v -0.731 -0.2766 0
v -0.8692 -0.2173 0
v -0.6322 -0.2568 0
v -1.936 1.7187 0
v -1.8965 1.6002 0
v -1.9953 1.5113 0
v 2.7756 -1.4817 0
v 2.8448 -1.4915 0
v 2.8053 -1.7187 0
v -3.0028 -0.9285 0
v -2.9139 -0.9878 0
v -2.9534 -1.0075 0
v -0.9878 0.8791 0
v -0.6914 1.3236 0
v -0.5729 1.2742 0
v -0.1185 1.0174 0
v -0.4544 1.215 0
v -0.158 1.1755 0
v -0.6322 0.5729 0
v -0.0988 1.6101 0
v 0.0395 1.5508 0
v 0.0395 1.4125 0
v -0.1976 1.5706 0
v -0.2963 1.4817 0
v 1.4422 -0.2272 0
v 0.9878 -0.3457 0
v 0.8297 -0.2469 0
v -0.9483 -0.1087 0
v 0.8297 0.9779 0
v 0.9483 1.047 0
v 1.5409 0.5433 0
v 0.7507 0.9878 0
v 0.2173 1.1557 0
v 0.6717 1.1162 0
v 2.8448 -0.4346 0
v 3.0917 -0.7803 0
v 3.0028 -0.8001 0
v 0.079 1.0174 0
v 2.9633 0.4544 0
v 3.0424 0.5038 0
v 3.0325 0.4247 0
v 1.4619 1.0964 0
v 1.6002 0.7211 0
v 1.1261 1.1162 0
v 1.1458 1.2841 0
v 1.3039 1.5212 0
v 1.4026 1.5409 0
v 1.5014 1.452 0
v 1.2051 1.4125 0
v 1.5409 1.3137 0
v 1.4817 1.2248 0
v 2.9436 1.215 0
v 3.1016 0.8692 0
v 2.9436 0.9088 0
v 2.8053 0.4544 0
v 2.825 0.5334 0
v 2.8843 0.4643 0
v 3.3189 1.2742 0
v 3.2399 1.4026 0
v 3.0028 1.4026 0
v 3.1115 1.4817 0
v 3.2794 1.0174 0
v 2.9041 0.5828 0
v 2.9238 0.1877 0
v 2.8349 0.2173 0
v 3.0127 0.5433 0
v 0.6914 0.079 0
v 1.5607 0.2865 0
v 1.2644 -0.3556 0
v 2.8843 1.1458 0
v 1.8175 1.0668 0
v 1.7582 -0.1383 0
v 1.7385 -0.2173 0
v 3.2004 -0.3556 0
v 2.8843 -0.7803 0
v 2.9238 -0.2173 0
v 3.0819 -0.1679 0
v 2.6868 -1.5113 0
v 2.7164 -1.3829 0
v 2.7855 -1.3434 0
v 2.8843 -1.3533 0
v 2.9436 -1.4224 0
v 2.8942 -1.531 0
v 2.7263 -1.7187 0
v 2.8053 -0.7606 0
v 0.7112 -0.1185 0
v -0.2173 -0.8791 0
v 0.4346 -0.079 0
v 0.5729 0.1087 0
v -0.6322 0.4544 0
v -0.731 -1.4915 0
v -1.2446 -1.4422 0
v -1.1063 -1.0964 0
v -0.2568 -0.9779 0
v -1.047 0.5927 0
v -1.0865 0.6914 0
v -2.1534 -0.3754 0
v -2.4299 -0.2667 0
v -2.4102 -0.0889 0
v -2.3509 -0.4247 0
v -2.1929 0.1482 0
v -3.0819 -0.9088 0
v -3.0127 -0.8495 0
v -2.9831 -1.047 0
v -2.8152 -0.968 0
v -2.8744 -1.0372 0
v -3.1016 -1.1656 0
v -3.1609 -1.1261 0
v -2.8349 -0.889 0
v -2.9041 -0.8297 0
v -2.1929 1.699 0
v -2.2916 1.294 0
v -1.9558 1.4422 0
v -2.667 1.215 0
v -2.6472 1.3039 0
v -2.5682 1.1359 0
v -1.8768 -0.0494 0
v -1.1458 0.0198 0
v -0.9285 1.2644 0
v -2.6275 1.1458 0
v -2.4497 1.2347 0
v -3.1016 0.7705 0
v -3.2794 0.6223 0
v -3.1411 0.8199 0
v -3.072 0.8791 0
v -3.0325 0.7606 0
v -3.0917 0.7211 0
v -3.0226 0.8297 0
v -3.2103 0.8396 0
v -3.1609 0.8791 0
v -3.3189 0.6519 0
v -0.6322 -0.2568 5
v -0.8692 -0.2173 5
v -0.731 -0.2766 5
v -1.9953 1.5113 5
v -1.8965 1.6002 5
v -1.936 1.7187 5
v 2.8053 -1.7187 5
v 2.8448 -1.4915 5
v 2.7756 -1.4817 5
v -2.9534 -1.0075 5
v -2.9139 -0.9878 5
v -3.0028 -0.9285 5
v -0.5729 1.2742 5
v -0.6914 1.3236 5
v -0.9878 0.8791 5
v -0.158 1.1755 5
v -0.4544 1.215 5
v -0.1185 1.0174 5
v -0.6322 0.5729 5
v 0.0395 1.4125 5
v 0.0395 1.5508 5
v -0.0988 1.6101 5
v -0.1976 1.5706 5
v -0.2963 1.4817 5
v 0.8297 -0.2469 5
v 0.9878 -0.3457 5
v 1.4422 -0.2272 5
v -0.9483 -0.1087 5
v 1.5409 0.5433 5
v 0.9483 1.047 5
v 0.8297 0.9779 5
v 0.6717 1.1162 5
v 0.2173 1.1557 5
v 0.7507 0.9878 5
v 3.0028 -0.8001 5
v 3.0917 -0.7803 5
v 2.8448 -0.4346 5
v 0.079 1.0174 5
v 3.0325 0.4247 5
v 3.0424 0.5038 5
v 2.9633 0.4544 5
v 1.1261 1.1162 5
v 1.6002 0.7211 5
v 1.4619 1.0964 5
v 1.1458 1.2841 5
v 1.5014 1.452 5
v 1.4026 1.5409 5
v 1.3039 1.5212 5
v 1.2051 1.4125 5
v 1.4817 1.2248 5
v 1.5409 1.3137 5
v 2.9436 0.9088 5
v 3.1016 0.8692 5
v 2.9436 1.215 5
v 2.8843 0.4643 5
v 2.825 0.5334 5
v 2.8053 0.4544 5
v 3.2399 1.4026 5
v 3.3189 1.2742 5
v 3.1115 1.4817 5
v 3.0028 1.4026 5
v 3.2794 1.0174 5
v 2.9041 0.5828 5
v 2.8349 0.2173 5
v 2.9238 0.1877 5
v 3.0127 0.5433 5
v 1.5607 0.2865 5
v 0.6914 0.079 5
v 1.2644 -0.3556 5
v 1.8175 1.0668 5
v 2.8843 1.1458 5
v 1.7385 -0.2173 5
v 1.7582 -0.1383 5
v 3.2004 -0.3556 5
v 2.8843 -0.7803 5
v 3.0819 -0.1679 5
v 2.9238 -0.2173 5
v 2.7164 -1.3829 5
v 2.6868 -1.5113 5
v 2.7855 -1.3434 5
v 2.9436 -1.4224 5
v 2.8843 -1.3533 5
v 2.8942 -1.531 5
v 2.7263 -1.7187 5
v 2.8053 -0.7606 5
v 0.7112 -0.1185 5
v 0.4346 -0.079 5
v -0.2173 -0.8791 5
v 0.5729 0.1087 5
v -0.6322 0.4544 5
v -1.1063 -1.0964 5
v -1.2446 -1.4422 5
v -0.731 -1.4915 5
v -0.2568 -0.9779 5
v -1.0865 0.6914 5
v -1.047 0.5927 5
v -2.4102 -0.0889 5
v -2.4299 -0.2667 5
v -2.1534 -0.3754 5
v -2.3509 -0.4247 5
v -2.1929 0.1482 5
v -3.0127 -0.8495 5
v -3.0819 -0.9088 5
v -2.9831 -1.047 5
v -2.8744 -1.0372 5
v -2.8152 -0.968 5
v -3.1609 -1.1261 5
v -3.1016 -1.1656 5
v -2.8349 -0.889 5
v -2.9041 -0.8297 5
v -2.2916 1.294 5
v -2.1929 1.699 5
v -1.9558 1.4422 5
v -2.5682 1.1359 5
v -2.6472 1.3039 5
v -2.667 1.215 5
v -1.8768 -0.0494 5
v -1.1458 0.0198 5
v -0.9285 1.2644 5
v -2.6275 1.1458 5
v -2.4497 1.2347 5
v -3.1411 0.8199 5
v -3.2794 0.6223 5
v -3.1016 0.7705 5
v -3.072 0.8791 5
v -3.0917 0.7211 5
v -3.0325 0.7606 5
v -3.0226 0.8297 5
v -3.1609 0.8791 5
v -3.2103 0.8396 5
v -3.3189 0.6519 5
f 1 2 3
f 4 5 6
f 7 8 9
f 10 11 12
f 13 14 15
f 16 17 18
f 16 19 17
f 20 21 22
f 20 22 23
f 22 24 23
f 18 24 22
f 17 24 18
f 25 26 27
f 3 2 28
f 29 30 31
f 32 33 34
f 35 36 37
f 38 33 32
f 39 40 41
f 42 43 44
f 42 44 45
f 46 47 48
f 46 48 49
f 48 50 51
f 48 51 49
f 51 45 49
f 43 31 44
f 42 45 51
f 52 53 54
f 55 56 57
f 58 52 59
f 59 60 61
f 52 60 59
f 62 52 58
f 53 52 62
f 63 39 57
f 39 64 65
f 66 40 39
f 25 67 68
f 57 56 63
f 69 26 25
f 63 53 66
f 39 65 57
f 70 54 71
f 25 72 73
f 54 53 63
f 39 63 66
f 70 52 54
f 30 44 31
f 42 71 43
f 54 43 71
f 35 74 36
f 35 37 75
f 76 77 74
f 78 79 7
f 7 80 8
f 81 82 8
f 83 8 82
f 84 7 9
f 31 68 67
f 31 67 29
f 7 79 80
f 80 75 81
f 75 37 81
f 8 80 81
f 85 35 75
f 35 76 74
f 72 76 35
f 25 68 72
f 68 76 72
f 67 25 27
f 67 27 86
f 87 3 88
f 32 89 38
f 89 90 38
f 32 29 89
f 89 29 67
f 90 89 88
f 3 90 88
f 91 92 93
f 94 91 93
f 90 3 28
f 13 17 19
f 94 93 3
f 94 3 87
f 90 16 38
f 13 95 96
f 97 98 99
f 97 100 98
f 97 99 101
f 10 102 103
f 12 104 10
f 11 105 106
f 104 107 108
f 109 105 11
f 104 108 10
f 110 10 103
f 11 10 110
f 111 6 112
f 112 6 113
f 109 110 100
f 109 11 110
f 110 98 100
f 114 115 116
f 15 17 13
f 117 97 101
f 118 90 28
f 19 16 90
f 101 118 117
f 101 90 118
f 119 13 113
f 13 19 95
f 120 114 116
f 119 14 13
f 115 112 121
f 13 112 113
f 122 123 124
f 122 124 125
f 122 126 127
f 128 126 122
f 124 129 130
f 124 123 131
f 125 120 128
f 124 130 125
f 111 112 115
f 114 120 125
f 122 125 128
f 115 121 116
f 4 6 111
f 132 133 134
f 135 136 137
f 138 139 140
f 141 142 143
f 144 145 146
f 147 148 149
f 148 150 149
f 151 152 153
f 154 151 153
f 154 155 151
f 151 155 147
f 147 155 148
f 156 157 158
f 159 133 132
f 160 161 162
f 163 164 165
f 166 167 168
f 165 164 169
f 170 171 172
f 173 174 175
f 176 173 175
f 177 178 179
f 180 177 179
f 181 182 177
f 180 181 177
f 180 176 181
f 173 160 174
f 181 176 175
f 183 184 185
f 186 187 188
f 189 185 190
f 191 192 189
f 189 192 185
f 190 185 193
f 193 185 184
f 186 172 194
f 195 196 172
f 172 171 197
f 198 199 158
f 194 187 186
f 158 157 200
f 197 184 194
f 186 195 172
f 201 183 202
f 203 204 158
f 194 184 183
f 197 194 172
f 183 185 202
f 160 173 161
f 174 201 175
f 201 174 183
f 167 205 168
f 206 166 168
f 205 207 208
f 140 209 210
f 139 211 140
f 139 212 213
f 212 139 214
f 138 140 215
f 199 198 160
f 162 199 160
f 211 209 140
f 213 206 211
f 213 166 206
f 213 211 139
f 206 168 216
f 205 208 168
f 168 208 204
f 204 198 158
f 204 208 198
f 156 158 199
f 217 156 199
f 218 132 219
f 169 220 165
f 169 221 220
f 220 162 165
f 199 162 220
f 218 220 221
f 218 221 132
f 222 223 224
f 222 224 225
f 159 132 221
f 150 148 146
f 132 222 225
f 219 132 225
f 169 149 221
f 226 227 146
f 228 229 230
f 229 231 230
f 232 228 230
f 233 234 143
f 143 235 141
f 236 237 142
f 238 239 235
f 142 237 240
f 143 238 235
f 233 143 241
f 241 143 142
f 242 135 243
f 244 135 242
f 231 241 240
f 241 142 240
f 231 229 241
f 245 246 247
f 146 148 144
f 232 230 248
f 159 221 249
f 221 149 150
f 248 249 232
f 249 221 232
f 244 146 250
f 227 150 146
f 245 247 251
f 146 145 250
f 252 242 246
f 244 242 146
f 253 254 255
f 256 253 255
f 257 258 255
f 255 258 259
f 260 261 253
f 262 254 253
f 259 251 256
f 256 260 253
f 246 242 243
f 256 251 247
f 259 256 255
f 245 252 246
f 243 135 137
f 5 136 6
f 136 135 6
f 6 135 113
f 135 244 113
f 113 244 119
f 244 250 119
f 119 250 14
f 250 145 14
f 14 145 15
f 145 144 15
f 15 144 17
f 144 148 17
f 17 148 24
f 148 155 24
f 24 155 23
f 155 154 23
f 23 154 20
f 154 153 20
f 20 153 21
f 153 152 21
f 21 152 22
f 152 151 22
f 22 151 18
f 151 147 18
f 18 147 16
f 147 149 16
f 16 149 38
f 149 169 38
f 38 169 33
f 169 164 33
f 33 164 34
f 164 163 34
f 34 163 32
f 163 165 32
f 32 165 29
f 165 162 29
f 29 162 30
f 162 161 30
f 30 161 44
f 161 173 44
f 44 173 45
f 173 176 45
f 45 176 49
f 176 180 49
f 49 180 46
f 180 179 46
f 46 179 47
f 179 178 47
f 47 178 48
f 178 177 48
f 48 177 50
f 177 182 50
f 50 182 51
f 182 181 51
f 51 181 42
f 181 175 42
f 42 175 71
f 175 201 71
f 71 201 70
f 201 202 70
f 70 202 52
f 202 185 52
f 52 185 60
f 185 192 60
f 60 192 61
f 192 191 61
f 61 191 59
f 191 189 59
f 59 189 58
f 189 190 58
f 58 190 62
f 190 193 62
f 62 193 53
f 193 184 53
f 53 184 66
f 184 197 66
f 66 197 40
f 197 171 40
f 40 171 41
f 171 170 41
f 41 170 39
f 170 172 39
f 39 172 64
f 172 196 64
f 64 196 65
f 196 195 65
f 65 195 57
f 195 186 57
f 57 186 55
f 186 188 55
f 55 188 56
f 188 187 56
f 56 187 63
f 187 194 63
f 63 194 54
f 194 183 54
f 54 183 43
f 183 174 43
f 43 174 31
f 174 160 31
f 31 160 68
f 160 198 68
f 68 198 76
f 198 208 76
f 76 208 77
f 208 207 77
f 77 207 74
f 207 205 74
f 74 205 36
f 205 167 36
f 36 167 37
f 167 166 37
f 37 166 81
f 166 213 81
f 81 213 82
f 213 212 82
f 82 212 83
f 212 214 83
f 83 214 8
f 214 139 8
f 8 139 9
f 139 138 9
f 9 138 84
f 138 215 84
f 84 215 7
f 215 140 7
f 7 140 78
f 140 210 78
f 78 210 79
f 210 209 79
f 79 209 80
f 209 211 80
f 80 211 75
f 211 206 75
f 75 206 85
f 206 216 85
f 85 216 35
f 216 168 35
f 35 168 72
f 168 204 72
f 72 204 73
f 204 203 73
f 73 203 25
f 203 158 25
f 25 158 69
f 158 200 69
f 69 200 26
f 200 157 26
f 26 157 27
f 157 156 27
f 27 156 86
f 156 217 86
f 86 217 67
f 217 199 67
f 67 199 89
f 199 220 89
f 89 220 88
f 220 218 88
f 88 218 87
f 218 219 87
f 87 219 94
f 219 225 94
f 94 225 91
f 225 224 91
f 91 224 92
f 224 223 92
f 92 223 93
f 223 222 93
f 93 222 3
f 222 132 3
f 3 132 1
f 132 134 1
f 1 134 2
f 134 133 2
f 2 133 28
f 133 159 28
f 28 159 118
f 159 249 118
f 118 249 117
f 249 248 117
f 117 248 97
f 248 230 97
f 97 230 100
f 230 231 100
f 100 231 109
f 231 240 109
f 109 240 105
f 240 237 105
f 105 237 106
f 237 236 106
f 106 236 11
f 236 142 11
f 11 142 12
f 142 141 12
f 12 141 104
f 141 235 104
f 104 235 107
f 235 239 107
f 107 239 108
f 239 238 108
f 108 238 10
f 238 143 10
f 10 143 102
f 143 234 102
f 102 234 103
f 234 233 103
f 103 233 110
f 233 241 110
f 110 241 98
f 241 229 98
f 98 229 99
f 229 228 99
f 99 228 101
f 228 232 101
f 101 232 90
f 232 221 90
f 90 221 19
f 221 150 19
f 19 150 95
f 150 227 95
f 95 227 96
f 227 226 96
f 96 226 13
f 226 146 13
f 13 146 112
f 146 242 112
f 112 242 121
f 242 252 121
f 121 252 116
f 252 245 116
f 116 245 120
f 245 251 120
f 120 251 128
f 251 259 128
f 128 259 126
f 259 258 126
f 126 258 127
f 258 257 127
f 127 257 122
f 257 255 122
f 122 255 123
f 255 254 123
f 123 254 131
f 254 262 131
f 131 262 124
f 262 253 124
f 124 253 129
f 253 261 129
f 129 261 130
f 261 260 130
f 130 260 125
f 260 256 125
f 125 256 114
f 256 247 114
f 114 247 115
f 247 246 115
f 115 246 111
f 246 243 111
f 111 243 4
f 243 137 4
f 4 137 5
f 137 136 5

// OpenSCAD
// Module names are of the form poly_<inkscape-path-id>().  As a result,
// you can associate a polygon in this OpenSCAD program with the corresponding
// SVG element in the Inkscape document by looking for the XML element with
// the attribute id="inkscape-path-id".

// fudge value is used to ensure that subtracted solids are a tad taller
// in the z dimension than the polygon being subtracted from.  This helps
// keep the resulting .stl file manifold.
fudge = 0.1;

module poly_path4376(h)
{
  scale([25.4/90, -25.4/90, 1]) union()
  {
    linear_extrude(height=h)
      polygon([[-6.930000,-5.110000],[-3.290000,-4.480000],[-2.450000,-4.690000],[-2.030000,-4.515000],[-1.610000,-4.305000],[-1.050000,-5.250000],[-0.700000,-5.565000],[-0.350000,-5.705000],[0.140000,-5.495000],[0.140000,-5.005000],[-0.560000,-4.165000],[-0.420000,-3.605000],[0.280000,-3.605000],[0.770000,-4.095000],[2.380000,-3.955000],[2.660000,-3.500000],[2.940000,-3.465000],[3.360000,-3.710000],[3.990000,-3.955000],[4.060000,-4.550000],[4.270000,-5.005000],[4.620000,-5.390000],[4.970000,-5.460000],[5.320000,-5.145000],[5.460000,-4.655000],[5.250000,-4.340000],[5.180000,-3.885000],[6.440000,-3.780000],[10.220000,-4.060000],[10.430000,-4.305000],[10.640000,-4.970000],[11.025000,-5.250000],[11.480000,-4.970000],[11.760000,-4.515000],[11.620000,-3.605000],[10.990000,-3.080000],[10.675000,-1.925000],[10.780000,-1.785000],[10.745000,-1.505000],[10.500000,-1.610000],[10.360000,-0.665000],[10.045000,-0.770000],[10.220000,-1.645000],[9.940000,-1.610000],[10.010000,-1.890000],[10.290000,-2.065000],[10.430000,-3.220000],[5.670000,-2.555000],[5.460000,-1.925000],[5.530000,-1.015000],[10.360000,0.770000],[10.920000,0.595000],[11.340000,1.260000],[10.955000,2.765000],[10.640000,2.835000],[10.220000,4.795000],[10.430000,5.040000],[10.255000,5.425000],[10.080000,5.285000],[9.940000,6.090000],[9.660000,6.090000],[9.835000,5.250000],[9.520000,5.355000],[9.625000,4.900000],[9.870000,4.760000],[10.220000,2.765000],[9.940000,2.695000],[10.080000,1.540000],[6.230000,0.490000],[6.160000,0.770000],[5.110000,0.805000],[4.480000,1.260000],[3.500000,1.225000],[2.940000,0.875000],[2.520000,0.420000],[2.450000,-0.280000],[2.030000,-0.385000],[1.540000,0.280000],[-0.770000,3.115000],[-0.910000,3.465000],[-2.590000,5.285000],[-4.410000,5.110000],[-3.920000,3.885000],[-2.240000,0.910000],[-2.590000,0.980000],[-3.080000,0.770000],[-3.360000,0.385000],[-4.060000,-0.070000],[-6.650000,0.175000],[-7.630000,1.330000],[-8.330000,1.505000],[-10.045000,3.150000],[-9.975000,3.430000],[-10.185000,3.675000],[-10.325000,3.500000],[-10.465000,3.570000],[-10.570000,3.710000],[-10.990000,4.130000],[-11.200000,3.990000],[-10.640000,3.290000],[-10.920000,3.220000],[-10.675000,3.010000],[-10.290000,2.940000],[-8.610000,0.945000],[-8.540000,0.315000],[-7.770000,-0.525000],[-2.240000,-1.610000],[-2.240000,-2.030000],[-3.710000,-2.100000],[-3.850000,-2.450000],[-3.500000,-3.115000],[-8.120000,-4.585000],[-8.680000,-4.375000],[-9.100000,-4.025000],[-9.310000,-4.060000],[-10.710000,-2.940000],[-10.745000,-2.695000],[-10.955000,-2.555000],[-10.990000,-2.730000],[-11.620000,-2.205000],[-11.760000,-2.310000],[-11.130000,-2.905000],[-11.375000,-2.975000],[-11.200000,-3.115000],[-10.885000,-3.115000],[-9.450000,-4.305000],[-9.380000,-4.620000],[-7.770000,-6.020000],[-6.860000,-6.090000],[-6.720000,-5.670000],[-7.070000,-5.355000],[-6.930000,-5.110000]]);
  }
}

poly_path4376(5);
